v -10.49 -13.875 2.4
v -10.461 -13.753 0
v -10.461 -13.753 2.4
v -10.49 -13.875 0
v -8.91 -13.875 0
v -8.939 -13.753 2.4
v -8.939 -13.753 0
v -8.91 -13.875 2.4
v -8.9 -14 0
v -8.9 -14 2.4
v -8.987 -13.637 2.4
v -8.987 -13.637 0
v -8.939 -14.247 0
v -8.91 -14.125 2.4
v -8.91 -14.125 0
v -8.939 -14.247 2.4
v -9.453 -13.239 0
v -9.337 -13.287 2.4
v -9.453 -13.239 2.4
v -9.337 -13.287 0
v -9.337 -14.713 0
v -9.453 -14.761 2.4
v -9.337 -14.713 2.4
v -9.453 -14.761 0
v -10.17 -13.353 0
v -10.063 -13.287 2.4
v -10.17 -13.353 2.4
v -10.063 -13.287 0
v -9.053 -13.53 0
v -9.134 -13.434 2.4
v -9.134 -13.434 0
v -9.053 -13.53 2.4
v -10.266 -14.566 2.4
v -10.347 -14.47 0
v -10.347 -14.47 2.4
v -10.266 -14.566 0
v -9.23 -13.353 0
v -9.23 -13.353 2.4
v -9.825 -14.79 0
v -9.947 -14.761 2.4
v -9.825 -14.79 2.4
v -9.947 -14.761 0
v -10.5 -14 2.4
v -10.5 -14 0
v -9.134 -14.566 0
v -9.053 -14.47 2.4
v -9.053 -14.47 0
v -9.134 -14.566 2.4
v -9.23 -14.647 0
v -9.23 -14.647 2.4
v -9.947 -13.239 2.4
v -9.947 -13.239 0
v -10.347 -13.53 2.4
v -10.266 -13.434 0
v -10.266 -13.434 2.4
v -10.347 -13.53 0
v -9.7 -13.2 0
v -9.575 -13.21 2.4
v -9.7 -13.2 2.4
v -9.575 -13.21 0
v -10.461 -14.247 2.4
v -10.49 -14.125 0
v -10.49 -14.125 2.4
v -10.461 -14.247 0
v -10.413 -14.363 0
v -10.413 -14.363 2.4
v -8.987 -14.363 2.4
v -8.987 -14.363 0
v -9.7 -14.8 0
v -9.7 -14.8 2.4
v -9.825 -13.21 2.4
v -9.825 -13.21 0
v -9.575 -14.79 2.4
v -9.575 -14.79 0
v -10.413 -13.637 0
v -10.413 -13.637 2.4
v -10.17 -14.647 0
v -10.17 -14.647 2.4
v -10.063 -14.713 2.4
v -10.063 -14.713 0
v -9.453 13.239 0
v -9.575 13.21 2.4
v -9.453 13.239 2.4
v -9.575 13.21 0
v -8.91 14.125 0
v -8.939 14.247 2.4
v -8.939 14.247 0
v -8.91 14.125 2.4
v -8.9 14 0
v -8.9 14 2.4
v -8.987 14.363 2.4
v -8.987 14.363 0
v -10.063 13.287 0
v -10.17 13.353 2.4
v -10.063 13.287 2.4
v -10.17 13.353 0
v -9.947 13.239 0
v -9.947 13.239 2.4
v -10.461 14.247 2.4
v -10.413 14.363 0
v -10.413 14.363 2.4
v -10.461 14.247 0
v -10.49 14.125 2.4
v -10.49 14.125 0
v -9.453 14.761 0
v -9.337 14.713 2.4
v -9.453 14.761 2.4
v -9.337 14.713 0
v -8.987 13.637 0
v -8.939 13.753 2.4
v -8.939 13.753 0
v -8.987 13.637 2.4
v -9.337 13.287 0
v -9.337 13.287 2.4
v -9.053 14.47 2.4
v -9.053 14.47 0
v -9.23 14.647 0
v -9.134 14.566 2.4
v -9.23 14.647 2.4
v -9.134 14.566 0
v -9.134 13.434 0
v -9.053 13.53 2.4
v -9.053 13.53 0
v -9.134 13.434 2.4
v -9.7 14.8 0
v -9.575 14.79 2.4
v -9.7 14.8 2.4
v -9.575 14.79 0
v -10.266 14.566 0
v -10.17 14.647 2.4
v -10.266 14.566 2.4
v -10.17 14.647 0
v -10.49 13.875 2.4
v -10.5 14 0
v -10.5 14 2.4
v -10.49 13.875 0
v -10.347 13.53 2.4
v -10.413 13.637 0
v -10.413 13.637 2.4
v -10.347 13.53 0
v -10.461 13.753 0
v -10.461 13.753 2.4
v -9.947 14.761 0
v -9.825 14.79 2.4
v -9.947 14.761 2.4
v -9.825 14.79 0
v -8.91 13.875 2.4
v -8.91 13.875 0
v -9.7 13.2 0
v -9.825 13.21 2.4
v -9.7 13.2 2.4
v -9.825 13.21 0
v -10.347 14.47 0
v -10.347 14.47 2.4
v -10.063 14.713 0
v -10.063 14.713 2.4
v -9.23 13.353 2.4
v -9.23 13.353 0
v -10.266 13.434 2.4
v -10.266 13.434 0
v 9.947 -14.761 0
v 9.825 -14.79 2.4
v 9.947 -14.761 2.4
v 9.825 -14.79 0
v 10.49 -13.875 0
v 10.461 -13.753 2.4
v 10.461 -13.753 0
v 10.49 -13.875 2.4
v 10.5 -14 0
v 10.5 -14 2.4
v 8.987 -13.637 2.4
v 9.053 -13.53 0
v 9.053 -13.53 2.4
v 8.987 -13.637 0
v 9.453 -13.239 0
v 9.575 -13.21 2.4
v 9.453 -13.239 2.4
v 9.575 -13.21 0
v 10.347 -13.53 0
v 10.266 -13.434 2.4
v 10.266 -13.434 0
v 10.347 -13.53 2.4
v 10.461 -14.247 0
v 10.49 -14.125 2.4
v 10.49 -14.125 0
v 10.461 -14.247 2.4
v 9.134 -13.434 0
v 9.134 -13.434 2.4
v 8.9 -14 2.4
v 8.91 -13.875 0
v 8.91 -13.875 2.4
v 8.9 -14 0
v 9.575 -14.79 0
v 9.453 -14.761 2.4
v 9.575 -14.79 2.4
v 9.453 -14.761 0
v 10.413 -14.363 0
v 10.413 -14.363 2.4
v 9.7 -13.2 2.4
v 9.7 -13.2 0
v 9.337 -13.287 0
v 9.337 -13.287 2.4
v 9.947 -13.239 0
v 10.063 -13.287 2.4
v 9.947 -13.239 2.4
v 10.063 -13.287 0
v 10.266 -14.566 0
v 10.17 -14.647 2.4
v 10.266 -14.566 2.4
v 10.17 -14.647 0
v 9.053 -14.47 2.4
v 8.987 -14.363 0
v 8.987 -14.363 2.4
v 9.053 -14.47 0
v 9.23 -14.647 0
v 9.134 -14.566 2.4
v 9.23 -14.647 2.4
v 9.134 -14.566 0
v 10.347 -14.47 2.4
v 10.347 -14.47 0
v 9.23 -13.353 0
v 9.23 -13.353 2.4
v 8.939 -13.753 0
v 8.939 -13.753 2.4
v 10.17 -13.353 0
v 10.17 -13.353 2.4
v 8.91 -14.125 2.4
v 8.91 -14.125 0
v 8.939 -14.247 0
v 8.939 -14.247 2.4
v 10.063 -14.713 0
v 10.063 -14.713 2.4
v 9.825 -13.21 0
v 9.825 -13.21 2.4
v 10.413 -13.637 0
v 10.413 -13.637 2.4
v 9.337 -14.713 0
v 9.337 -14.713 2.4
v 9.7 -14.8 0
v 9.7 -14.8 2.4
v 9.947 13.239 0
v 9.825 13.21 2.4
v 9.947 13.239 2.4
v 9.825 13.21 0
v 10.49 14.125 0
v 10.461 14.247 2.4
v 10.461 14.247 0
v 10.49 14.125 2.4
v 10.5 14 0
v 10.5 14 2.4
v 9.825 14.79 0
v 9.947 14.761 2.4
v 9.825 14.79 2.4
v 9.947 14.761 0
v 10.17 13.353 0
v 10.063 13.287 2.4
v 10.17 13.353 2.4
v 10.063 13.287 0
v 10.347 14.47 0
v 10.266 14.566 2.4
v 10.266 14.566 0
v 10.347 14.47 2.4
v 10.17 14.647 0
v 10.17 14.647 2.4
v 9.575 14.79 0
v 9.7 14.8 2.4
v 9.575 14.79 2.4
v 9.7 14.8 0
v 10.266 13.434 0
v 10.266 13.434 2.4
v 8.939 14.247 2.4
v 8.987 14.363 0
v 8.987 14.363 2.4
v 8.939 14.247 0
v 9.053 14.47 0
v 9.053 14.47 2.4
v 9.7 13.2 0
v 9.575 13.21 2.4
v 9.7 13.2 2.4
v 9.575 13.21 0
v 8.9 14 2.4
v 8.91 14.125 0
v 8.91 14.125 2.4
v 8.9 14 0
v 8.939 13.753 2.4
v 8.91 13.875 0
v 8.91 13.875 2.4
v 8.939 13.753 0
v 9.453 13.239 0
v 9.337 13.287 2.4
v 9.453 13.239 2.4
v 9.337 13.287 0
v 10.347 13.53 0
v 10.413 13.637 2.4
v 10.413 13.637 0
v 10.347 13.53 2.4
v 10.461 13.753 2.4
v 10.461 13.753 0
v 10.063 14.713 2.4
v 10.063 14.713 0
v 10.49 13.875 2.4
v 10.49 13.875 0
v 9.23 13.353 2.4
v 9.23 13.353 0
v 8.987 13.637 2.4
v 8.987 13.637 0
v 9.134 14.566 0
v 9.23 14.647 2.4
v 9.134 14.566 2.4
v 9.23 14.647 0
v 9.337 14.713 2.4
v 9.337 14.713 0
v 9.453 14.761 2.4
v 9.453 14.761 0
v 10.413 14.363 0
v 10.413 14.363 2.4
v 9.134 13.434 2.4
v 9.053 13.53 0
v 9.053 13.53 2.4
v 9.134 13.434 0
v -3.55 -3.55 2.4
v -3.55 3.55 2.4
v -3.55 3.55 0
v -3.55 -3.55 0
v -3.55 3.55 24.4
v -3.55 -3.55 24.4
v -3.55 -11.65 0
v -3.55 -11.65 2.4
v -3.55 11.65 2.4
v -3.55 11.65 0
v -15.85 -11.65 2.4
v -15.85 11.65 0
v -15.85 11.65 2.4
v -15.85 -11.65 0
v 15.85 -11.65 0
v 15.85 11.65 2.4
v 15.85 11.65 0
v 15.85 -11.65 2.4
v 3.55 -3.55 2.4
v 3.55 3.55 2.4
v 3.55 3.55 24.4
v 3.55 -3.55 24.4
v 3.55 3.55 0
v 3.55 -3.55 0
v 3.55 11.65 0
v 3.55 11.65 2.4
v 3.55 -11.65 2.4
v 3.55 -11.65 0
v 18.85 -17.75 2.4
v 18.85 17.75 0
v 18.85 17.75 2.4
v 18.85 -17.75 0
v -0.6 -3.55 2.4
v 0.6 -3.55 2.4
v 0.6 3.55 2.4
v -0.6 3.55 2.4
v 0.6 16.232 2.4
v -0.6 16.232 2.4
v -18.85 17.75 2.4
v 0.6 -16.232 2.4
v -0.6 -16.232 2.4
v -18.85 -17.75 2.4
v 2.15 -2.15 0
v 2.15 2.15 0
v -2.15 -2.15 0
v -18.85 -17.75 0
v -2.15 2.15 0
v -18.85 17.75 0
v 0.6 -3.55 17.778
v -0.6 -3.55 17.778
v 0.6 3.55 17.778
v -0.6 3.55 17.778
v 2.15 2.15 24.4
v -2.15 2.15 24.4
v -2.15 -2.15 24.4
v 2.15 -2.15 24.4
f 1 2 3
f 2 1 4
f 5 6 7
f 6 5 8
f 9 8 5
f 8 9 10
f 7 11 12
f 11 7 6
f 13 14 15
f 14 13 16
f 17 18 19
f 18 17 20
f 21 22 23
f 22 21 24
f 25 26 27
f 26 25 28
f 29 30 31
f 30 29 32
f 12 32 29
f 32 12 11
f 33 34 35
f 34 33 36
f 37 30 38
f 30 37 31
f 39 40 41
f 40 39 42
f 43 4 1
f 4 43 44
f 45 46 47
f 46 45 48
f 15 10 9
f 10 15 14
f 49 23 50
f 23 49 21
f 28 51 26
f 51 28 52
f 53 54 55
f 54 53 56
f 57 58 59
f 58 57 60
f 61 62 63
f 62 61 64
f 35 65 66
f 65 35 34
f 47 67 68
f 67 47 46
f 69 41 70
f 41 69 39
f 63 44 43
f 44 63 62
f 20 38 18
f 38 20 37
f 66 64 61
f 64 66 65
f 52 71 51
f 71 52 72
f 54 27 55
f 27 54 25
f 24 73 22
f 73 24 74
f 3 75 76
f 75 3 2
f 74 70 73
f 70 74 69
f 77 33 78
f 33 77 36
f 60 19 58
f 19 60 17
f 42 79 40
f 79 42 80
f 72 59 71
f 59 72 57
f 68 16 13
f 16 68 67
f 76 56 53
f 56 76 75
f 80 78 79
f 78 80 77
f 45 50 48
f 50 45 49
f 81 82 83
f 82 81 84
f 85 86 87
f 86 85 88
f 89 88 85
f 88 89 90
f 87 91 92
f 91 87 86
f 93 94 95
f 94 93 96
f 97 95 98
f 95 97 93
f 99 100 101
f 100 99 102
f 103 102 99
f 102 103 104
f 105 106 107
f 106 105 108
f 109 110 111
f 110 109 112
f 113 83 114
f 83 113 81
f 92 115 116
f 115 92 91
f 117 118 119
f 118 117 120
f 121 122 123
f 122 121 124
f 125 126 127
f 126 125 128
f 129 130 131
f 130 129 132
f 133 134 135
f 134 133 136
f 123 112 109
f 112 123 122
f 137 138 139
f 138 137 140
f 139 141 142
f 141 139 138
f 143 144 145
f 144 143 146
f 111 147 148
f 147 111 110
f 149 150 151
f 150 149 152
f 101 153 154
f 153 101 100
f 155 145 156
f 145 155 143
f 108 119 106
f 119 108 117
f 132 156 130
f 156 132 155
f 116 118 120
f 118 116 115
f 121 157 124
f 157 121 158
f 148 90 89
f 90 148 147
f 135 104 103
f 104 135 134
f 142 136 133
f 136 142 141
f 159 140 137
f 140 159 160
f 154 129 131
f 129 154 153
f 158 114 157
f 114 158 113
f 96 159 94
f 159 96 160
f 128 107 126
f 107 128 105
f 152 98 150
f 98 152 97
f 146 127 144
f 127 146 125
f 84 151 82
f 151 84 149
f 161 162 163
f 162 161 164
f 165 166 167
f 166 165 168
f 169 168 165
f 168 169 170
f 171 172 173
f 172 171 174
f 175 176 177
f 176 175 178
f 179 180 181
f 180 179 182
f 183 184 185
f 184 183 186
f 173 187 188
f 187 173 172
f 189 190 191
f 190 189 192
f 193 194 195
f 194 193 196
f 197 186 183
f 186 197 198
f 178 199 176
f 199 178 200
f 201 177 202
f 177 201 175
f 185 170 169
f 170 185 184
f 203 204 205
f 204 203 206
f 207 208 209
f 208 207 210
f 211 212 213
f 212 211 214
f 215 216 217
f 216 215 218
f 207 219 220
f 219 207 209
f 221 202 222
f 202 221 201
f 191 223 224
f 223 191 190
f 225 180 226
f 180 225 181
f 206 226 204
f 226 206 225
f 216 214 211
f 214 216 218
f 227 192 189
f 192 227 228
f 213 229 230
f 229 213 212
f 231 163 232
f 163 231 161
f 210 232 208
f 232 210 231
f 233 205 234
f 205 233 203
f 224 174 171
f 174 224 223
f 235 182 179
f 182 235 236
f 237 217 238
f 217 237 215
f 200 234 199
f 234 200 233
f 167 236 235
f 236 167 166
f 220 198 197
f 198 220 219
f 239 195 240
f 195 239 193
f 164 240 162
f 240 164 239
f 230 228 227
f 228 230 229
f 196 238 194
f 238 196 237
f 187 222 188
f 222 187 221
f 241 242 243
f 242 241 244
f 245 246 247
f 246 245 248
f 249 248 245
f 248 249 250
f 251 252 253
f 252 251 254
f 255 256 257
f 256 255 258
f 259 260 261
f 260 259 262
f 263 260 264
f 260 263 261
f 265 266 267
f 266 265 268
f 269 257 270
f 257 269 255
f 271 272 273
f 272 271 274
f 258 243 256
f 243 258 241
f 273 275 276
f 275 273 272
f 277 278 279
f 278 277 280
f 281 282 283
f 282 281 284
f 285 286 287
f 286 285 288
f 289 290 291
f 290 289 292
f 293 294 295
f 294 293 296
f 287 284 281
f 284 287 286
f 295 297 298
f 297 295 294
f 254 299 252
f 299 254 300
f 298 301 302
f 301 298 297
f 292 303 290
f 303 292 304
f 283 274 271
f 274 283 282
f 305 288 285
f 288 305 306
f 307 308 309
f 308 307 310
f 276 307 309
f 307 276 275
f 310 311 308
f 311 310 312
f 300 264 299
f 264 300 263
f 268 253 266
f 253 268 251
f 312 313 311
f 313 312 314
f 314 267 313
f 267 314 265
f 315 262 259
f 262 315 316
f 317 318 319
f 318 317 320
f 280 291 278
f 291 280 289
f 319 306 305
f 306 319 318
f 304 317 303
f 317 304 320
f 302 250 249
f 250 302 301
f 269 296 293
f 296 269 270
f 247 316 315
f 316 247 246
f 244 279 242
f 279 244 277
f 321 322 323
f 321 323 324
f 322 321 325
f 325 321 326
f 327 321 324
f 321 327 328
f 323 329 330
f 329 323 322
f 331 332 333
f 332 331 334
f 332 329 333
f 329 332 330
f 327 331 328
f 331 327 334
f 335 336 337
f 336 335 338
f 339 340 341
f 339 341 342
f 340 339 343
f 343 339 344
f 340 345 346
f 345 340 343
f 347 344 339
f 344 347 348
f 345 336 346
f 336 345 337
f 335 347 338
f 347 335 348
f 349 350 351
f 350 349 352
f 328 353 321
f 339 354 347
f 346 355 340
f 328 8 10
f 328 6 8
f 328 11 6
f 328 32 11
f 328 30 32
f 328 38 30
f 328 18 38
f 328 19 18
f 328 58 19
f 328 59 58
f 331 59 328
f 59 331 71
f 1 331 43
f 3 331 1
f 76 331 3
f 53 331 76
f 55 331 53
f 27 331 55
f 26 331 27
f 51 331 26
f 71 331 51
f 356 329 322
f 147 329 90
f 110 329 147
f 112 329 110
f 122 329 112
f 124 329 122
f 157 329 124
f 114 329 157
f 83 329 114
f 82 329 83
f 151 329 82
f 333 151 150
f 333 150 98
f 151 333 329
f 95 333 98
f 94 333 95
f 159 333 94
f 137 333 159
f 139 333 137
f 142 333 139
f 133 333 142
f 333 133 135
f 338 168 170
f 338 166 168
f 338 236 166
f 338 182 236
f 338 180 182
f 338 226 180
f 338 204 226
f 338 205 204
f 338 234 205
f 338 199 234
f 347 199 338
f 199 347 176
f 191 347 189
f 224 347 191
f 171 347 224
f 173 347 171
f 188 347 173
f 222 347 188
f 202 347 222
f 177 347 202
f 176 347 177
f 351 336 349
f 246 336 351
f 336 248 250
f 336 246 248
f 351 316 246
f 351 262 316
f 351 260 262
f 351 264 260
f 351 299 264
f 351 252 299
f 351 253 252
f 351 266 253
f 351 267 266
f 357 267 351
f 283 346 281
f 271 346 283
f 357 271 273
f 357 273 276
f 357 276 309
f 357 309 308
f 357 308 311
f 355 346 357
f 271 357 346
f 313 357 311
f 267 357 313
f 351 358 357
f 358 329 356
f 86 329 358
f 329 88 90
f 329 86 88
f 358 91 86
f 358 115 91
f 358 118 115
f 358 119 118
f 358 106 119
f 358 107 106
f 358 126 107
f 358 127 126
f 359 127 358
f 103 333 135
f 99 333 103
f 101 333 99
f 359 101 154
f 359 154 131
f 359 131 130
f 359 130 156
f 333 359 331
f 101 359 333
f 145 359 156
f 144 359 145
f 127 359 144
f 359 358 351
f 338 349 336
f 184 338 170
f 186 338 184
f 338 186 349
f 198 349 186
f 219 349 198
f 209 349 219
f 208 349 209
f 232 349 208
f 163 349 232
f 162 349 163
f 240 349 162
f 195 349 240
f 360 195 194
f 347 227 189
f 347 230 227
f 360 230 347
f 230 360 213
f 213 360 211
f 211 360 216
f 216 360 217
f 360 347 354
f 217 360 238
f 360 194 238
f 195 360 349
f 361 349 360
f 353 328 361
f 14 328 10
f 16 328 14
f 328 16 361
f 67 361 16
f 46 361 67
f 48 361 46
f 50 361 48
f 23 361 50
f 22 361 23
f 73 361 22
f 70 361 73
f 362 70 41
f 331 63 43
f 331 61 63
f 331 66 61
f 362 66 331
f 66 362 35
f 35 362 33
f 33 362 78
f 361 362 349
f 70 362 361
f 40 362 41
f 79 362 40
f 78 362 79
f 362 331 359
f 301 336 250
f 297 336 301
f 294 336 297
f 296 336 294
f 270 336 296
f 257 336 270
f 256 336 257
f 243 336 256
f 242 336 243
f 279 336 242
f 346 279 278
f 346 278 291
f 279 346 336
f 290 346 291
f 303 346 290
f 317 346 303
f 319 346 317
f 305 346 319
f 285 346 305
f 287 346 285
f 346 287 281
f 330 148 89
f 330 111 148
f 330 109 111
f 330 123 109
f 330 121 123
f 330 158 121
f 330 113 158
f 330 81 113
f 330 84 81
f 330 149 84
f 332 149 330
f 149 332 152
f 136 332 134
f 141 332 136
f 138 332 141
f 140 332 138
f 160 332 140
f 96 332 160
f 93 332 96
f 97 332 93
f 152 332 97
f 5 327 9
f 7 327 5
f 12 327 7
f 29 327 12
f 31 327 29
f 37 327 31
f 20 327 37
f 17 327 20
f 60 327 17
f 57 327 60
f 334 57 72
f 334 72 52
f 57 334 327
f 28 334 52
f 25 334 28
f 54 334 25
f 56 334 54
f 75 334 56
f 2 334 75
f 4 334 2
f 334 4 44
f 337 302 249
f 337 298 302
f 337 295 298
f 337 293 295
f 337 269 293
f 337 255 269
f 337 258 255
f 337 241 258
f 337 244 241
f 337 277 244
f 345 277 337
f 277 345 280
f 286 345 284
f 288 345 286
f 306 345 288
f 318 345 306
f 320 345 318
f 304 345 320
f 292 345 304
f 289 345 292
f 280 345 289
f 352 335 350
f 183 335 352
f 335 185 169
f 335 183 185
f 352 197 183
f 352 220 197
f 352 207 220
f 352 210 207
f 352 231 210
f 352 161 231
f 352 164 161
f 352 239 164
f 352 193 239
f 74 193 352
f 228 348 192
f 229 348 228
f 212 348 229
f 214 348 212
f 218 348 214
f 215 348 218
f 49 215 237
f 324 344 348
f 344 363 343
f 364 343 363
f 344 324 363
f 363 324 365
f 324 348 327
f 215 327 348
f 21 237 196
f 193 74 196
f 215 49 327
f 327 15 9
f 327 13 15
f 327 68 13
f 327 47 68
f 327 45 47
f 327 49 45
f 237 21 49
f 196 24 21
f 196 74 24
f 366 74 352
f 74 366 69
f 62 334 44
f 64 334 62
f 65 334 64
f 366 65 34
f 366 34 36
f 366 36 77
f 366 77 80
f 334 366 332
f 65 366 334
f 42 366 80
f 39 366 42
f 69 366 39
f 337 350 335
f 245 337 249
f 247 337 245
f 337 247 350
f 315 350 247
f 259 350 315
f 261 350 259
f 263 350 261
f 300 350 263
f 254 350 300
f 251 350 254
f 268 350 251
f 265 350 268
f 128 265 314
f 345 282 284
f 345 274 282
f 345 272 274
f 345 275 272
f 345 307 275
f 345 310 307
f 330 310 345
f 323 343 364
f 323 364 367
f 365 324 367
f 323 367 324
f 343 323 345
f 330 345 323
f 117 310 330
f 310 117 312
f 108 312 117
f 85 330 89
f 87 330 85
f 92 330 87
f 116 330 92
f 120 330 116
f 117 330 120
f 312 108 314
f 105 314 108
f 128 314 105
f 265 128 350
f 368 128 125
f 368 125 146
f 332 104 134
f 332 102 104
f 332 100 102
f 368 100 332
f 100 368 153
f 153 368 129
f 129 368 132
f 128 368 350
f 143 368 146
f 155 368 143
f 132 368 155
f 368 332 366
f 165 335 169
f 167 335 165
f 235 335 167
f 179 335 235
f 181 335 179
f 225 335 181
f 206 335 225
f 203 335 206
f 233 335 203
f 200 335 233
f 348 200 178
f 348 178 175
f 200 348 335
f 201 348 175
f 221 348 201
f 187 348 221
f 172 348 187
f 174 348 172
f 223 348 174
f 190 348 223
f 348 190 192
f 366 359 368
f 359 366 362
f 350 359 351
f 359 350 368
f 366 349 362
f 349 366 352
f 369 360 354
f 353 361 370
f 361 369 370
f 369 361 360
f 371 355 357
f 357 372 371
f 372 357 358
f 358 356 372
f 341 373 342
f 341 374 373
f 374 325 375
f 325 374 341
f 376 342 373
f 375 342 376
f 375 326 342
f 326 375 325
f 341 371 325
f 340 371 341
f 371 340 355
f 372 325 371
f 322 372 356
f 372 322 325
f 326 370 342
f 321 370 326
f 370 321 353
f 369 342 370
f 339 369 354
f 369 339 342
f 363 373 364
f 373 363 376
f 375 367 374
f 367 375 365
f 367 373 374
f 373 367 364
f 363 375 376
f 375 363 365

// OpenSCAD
// 仿生蝴蝶 · 舵机座 (servo mount)
//
// 两个舵机左右并排装在前面板上，输出轴朝前；中间的方形套筒套在 4×4 mm 碳纤维方管主梁上。
// 舵机从前面插进方孔，安装耳压在面板前面，用 M2 自攻螺丝固定。
//
// 打印：PETG，层高 0.2 mm，3 圈壁，20–30% 填充。
//       前面板平放在热床上（套筒朝上），不需要支撑。
// 坐标：X = 左右，Y = 上下，Z = 前后（Z+ 朝机尾）。
//
// ★ 先用游标卡尺量你的舵机，改下面 [舵机尺寸] 里的数字，再导出 STL。

/* [舵机尺寸（量你自己的舵机）] */
servo_w = 12.0;             // 机身宽度 (mm)
servo_l = 23.0;             // 机身长度，沿安装耳方向 (mm)
servo_ear_span = 32.5;      // 两个安装耳外端之间的总长 (mm)
servo_hole_spacing = 28.0;  // 两个安装孔的中心距 (mm)

/* [主梁] */
keel = 4.0;                 // 碳纤维方管边长 (mm)

/* [打印余量] */
clearance = 0.3;            // 孔比零件大多少 (mm)；太紧就加大到 0.4

/* [结构] */
plate_t = 2.4;              // 前面板厚度 (mm)
margin = 3.0;               // 面板左右两侧的边距 (mm)
sleeve_wall = 1.4;          // 套筒壁厚 (mm)
sleeve_len = 22;            // 套筒向后伸出的长度 (mm)
gusset_t = 1.2;             // 加强筋厚度 (mm)
screw_d = 1.6;              // M2 自攻螺丝底孔 (mm)

/* [Hidden] */
$fn = 40;
hole = keel + clearance;                  // 主梁孔
sleeve_o = hole + 2 * sleeve_wall;        // 套筒外径
rib = sleeve_o;                           // 两个舵机之间的中筋宽度 = 套筒外径
pocket_w = servo_w + clearance;
pocket_l = servo_l + clearance;
plate_w = 2 * pocket_w + rib + 2 * margin;
plate_h = servo_ear_span + 3;
servo_x = rib / 2 + pocket_w / 2;         // 舵机中心的 X 位置

module plate() {
  difference() {
    translate([-plate_w / 2, -plate_h / 2, 0]) cube([plate_w, plate_h, plate_t]);
    for (sx = [-1, 1]) {
      // 舵机方孔
      translate([sx * servo_x - pocket_w / 2, -pocket_l / 2, -1]) cube([pocket_w, pocket_l, plate_t + 2]);
      // 安装螺丝孔
      for (sy = [-1, 1])
        translate([sx * servo_x, sy * servo_hole_spacing / 2, -1]) cylinder(d = screw_d, h = plate_t + 2);
    }
  }
}

module sleeve() {
  translate([-sleeve_o / 2, -sleeve_o / 2, 0]) cube([sleeve_o, sleeve_o, plate_t + sleeve_len]);
}

// 上下两块三角加强筋，把套筒和面板连成一体
module gussets() {
  g_h = plate_h / 2 - sleeve_o / 2 - 1.5;
  for (sy = [-1, 1])
    mirror([0, sy < 0 ? 1 : 0, 0])
      translate([gusset_t / 2, sleeve_o / 2 - 0.01, plate_t - 0.01])
        rotate([0, -90, 0])
          linear_extrude(gusset_t)
            polygon([[0, 0], [sleeve_len * 0.7, 0], [0, g_h]]);
}

difference() {
  union() {
    plate();
    sleeve();
    gussets();
  }
  // 主梁方孔，贯穿面板和套筒
  translate([-hole / 2, -hole / 2, -1]) cube([hole, hole, plate_t + sleeve_len + 2]);
}

echo(str("面板尺寸 ", plate_w, " x ", plate_h, " mm；两个舵机中心距 ", 2 * servo_x, " mm"));
